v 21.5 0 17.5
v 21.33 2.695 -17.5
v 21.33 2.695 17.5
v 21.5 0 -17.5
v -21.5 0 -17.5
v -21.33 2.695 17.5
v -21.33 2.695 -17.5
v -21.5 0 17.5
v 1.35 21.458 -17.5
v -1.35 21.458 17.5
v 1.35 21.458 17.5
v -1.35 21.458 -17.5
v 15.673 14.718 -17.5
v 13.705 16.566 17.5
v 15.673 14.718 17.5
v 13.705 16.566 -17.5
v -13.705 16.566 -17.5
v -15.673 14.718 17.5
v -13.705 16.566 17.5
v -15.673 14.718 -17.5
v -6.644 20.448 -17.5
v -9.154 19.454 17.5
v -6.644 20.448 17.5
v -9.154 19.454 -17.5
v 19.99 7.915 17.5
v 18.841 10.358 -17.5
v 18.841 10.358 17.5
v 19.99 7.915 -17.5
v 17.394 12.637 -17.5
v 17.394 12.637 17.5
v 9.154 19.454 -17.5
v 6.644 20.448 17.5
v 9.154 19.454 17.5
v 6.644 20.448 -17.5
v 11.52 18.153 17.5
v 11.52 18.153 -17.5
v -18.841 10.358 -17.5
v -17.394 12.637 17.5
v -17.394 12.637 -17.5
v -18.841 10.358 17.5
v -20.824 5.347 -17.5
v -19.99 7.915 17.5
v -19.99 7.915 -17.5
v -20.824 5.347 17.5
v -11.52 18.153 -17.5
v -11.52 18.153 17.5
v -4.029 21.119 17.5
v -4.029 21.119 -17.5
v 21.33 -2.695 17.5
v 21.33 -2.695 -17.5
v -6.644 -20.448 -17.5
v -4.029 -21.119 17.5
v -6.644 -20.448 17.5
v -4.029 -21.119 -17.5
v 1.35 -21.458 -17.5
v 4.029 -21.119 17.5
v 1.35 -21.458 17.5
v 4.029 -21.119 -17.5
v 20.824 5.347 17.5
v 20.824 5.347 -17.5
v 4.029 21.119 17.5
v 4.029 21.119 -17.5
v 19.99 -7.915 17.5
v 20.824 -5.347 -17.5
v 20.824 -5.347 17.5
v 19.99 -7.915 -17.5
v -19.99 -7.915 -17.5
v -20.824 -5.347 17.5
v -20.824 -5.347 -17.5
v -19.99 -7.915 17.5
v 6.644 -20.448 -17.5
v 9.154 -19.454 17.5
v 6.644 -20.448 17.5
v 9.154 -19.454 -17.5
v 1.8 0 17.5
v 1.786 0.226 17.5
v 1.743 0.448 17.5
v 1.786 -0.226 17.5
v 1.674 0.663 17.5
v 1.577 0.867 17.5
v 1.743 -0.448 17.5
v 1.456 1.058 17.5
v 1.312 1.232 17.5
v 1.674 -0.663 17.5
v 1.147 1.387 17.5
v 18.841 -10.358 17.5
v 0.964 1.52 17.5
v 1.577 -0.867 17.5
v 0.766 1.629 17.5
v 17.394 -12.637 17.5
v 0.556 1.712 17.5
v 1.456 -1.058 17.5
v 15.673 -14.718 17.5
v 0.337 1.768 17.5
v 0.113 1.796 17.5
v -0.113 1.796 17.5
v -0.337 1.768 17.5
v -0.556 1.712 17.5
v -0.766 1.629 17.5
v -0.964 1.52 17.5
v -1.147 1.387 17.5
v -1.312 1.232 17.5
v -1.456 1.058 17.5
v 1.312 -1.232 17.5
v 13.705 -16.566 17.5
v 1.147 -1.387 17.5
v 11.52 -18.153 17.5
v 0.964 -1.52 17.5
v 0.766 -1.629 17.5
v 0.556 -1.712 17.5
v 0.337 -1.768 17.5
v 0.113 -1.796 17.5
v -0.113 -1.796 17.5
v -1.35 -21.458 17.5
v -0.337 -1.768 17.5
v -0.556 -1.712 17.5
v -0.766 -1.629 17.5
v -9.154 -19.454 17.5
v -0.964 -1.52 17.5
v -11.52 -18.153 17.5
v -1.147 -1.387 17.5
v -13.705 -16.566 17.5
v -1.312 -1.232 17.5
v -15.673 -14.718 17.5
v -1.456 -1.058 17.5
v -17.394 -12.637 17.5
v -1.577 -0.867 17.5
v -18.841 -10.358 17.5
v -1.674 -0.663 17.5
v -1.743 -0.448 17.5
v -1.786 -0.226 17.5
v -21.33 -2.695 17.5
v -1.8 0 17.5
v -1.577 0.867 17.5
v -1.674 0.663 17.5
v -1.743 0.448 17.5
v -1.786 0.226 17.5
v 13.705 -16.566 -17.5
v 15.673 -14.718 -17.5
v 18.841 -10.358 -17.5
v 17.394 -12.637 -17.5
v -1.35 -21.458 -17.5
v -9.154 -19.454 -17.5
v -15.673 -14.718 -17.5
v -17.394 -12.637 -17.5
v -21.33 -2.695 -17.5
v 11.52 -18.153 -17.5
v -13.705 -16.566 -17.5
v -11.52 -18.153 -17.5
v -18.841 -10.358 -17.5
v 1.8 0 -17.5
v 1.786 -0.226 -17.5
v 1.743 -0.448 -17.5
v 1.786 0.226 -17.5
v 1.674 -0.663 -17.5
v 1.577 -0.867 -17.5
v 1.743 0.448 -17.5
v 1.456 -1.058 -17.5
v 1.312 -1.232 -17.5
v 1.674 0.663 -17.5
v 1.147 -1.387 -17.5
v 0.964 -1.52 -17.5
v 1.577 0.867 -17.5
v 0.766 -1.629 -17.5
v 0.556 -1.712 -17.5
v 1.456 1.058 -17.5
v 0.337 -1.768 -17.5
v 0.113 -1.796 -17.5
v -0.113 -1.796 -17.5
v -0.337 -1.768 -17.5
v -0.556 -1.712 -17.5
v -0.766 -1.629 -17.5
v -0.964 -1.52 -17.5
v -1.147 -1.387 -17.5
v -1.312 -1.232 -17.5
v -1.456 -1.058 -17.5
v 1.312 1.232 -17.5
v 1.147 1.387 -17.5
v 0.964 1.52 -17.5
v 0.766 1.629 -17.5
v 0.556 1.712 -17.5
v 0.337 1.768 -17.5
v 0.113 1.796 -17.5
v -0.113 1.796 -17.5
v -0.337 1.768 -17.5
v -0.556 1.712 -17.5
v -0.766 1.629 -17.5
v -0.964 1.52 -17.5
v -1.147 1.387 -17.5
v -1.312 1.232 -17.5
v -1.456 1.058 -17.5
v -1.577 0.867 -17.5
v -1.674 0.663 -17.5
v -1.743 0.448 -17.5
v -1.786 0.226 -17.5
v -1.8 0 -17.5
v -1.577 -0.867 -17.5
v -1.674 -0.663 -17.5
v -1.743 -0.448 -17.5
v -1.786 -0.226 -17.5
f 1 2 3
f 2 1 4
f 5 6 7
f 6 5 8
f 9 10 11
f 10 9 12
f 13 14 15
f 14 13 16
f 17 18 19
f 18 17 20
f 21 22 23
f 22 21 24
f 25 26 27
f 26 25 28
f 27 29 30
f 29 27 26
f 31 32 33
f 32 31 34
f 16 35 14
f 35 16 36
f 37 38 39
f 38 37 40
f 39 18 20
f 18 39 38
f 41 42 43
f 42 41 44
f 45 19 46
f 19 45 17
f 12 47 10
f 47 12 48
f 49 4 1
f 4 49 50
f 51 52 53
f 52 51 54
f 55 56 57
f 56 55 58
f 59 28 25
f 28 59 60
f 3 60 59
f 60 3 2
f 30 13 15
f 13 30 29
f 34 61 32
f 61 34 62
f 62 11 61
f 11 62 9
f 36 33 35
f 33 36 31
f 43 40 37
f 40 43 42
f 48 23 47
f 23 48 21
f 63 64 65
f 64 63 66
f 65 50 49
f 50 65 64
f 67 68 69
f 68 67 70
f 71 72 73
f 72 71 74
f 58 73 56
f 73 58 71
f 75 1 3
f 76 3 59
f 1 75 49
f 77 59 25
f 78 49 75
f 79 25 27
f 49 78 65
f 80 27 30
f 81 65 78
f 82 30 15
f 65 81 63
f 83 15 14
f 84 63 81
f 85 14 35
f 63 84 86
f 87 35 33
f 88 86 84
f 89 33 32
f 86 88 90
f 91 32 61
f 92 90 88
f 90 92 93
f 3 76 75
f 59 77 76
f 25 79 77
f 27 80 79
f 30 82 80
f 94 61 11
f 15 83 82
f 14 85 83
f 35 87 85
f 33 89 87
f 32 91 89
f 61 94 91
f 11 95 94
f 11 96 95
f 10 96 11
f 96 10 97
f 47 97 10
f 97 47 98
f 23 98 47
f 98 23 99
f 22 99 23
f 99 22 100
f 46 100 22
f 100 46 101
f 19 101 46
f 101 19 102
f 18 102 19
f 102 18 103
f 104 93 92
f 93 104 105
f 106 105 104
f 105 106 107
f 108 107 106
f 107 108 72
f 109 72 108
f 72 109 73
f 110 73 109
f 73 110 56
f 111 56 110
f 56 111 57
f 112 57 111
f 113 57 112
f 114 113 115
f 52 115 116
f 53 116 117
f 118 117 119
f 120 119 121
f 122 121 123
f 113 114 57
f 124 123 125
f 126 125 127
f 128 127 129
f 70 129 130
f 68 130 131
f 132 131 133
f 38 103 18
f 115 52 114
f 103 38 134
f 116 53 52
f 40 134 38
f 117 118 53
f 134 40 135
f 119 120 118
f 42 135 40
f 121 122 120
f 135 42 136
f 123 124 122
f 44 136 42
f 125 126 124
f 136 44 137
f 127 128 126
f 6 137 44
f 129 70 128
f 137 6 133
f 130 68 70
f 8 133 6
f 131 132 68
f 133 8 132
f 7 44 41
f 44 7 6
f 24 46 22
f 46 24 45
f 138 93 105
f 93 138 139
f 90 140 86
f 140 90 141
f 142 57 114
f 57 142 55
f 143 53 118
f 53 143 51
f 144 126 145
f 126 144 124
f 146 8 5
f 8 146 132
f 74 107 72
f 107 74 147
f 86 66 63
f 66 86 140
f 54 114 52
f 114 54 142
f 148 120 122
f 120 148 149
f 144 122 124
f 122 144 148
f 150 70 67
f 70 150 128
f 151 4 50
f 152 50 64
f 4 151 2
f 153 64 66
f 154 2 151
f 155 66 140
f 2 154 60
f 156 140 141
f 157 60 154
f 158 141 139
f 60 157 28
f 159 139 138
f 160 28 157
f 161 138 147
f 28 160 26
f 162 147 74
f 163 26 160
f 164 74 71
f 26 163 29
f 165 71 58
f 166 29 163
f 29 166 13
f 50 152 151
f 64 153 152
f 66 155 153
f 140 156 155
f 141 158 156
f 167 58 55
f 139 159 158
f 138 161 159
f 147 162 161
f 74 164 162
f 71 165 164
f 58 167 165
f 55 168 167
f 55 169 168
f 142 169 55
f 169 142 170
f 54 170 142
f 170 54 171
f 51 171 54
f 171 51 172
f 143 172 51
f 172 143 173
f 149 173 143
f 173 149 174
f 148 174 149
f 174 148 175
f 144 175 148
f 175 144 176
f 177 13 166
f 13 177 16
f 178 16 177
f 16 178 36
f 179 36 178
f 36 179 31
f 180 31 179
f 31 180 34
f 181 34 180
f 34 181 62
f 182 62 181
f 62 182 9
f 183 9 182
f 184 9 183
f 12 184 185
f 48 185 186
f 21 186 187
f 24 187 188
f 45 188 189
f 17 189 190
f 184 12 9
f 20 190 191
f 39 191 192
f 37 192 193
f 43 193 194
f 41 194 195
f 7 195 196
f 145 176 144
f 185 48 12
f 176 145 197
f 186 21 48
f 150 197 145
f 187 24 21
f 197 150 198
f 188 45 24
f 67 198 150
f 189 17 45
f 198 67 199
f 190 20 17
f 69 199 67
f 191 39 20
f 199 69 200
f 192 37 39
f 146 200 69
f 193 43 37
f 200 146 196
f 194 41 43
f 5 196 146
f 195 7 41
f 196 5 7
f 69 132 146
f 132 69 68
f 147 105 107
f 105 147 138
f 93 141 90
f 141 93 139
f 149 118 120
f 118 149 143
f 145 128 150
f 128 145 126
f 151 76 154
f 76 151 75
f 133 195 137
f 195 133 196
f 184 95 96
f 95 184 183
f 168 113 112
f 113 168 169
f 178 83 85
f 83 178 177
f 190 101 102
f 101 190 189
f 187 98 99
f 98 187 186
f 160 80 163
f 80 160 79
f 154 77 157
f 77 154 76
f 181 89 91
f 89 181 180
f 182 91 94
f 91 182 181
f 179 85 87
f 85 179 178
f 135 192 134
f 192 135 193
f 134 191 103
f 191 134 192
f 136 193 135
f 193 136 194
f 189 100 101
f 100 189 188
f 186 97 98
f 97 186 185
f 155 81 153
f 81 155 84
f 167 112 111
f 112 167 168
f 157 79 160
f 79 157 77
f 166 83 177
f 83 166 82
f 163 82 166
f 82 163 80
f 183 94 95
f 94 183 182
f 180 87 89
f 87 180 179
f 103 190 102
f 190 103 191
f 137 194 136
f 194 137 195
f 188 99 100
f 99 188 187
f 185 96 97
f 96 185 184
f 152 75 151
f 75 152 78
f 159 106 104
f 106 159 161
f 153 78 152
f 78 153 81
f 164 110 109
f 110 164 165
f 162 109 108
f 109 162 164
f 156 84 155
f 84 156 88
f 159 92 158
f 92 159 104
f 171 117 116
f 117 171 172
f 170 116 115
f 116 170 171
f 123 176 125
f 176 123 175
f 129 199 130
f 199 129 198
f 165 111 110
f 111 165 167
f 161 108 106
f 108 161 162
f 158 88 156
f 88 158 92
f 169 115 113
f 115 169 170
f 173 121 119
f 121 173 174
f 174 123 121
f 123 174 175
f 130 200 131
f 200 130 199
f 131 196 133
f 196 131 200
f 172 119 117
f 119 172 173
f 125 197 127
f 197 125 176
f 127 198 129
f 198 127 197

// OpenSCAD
$fn = 50;


difference() {
	union() {
		translate(v = [0, 0, -17.5000000000]) {
			cylinder(h = 35, r = 21.5000000000);
		}
	}
	union() {
		translate(v = [0, 0, -100.0000000000]) {
			cylinder(h = 200, r = 1.8000000000);
		}
	}
}
